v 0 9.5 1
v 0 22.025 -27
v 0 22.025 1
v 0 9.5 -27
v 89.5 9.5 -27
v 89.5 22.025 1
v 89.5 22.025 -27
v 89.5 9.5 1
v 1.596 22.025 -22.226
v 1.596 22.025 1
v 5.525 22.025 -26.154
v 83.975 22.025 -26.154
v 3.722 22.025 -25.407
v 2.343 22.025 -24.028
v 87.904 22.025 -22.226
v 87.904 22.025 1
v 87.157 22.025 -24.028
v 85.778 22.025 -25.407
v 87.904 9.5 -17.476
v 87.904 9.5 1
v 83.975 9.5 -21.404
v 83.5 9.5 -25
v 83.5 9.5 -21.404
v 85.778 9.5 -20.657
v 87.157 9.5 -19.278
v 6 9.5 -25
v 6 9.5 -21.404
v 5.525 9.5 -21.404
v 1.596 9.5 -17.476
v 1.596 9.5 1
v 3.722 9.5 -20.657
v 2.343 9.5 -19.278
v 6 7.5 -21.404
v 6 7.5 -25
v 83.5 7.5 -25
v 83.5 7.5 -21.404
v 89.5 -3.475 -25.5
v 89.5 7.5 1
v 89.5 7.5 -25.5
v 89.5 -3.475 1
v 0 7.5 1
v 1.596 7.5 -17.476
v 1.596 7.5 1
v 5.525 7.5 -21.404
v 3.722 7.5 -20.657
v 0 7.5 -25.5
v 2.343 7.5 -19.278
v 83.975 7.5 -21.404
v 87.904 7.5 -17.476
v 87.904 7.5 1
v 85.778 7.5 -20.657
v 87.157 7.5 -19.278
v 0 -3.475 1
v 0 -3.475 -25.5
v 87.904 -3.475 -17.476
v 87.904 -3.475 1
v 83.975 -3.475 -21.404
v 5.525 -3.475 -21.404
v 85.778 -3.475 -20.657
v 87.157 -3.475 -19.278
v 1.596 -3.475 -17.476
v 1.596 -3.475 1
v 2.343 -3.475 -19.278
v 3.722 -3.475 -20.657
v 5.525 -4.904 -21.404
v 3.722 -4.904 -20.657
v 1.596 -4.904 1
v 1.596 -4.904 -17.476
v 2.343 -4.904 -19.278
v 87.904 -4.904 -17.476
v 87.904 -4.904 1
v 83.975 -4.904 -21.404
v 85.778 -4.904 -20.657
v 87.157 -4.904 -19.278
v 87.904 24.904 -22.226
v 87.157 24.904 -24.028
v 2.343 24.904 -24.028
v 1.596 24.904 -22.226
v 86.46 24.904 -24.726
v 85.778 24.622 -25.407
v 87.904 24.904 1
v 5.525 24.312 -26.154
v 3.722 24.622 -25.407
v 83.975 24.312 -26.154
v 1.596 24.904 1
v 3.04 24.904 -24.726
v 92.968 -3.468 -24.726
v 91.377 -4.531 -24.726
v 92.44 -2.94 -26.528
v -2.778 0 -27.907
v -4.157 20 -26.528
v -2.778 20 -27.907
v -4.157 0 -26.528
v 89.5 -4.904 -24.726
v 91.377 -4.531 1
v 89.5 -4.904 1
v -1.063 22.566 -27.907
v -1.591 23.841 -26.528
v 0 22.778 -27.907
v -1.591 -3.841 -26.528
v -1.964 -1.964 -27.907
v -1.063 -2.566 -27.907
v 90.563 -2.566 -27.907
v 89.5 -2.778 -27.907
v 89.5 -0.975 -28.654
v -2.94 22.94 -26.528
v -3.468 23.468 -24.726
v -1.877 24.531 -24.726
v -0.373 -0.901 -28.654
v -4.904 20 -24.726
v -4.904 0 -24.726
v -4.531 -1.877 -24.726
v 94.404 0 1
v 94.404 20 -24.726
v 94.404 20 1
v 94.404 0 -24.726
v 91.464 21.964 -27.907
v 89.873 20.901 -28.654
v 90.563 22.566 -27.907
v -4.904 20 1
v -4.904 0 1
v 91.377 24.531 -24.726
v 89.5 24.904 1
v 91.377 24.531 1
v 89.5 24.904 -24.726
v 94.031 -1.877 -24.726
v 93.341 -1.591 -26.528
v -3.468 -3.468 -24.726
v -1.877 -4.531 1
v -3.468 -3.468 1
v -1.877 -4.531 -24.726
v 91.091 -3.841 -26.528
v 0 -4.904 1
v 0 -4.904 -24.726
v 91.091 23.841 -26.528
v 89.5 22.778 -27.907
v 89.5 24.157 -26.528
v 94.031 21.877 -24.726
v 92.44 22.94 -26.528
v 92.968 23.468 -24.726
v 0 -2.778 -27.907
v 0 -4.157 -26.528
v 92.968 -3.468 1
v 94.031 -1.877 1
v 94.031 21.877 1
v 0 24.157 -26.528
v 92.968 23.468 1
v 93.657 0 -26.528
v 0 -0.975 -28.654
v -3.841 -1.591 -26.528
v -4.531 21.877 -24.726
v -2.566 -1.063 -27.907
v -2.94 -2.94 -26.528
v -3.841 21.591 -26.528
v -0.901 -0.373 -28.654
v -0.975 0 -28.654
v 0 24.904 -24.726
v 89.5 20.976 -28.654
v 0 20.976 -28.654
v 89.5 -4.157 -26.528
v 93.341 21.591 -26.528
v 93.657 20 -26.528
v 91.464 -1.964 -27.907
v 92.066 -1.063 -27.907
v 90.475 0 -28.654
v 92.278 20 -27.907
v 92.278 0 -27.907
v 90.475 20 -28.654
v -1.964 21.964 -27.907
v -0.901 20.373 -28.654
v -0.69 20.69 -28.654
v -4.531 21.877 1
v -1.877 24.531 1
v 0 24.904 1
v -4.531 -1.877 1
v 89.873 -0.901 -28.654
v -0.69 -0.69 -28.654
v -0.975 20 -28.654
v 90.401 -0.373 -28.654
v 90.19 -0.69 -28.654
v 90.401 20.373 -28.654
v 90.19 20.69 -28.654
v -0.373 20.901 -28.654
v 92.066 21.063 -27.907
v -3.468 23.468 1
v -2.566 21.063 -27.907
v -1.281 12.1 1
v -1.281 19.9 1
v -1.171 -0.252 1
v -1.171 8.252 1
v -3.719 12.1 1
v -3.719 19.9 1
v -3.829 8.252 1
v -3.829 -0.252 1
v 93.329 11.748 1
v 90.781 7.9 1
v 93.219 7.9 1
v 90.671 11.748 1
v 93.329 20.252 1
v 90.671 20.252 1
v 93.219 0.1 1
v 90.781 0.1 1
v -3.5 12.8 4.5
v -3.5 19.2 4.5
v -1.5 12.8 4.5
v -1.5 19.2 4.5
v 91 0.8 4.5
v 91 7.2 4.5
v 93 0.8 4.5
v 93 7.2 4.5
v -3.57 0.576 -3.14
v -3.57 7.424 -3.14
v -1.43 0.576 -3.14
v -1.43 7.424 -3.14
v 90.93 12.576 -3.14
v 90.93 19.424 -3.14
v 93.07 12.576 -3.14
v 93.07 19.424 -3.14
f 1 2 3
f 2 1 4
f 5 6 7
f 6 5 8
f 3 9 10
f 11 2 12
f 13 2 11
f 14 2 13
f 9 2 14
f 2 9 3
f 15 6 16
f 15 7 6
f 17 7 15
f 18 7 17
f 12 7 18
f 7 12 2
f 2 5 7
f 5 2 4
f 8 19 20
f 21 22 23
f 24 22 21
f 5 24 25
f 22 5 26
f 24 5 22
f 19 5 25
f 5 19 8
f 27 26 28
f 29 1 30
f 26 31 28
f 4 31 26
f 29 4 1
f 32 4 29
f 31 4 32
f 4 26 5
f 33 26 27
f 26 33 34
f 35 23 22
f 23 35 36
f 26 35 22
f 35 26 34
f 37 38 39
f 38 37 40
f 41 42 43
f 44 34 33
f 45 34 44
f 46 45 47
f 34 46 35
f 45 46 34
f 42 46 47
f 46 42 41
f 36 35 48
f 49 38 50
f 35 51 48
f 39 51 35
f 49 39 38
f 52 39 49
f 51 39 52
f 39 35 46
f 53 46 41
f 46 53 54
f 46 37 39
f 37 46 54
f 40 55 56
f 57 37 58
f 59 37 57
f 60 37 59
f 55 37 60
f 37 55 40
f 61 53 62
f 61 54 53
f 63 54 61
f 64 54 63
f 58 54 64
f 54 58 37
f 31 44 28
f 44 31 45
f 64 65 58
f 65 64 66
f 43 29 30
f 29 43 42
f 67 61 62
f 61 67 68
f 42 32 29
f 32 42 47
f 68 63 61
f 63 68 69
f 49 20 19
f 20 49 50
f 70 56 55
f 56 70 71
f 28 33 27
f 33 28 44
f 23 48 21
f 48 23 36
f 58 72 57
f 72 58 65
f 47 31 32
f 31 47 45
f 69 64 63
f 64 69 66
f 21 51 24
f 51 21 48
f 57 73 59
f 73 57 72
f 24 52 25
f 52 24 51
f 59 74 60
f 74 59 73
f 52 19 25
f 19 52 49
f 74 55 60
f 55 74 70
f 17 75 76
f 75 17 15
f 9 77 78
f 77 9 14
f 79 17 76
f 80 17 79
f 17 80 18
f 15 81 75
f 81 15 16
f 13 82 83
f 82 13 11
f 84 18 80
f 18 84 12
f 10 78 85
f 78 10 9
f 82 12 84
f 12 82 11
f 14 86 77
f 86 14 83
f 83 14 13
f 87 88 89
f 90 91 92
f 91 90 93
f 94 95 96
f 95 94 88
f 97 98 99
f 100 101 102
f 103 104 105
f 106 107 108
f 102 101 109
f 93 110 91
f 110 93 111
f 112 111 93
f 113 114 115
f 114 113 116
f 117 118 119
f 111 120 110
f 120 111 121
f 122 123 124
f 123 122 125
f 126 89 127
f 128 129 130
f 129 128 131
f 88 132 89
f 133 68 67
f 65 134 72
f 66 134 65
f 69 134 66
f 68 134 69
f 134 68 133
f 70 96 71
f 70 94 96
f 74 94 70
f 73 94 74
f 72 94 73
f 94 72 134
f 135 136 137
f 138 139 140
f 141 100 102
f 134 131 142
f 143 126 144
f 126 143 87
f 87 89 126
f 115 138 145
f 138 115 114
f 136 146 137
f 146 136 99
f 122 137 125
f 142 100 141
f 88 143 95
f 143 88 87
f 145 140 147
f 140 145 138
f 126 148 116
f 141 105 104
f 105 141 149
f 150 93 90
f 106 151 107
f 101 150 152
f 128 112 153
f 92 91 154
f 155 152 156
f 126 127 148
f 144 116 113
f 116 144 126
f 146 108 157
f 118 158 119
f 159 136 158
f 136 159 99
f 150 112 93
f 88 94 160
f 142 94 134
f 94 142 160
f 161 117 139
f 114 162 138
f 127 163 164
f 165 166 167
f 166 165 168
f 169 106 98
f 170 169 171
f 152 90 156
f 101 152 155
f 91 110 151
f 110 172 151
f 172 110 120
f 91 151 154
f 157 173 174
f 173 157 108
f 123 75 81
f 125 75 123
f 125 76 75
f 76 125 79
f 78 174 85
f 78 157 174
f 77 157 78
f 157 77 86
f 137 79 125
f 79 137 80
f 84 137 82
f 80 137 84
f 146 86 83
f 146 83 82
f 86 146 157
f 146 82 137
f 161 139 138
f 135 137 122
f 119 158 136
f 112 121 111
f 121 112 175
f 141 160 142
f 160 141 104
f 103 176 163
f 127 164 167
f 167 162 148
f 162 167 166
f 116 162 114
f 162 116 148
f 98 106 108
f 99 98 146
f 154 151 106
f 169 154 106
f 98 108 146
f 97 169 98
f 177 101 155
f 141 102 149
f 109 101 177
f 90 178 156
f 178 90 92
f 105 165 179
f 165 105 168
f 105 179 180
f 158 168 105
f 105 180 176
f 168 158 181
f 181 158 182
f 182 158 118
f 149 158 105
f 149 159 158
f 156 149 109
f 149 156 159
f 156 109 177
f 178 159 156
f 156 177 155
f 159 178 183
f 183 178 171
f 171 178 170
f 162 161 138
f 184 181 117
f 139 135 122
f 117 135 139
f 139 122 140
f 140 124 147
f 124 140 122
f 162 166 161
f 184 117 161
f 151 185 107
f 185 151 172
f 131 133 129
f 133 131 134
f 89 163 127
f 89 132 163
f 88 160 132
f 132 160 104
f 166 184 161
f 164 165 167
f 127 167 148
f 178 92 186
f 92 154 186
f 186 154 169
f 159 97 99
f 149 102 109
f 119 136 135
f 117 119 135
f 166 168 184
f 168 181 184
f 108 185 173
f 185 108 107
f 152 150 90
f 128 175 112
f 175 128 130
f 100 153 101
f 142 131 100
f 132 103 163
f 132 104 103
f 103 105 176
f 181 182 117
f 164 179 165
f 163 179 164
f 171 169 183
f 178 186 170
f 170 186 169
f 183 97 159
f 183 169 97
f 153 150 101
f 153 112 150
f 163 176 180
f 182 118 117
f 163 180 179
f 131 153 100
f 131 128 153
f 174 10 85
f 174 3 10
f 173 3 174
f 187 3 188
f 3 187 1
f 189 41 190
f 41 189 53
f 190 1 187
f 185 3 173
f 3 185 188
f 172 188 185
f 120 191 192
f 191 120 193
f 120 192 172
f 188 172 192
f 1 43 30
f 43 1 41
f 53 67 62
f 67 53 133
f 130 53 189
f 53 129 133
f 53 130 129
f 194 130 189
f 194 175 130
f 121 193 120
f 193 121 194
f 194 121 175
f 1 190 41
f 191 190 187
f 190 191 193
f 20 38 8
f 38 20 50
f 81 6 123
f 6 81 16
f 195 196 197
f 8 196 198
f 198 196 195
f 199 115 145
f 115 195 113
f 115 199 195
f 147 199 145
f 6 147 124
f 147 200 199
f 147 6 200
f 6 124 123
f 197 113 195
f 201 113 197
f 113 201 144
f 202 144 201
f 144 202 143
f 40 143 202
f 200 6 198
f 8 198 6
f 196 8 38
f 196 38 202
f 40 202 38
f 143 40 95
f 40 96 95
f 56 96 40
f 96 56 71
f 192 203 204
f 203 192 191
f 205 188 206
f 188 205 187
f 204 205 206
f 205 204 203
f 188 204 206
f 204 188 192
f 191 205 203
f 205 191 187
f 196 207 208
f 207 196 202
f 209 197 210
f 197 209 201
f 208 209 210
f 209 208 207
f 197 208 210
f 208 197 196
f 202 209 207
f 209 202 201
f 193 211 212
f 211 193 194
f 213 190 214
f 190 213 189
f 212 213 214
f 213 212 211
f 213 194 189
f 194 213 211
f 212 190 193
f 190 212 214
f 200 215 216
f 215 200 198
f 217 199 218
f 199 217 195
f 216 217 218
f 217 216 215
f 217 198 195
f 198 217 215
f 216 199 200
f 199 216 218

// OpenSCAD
// file: microclock-ref.scad
$fn = 10;

skinBreak = 0.01;       // extra depth to poke a hole through a surface

//boardW = 146;
//boardH = 63.7;     // was 63.45 - tight

// Eagle dimensions of v.2 board
//  + slop to fit
eagleBoardW = (33 * 2.54);      // 83.82;
eagleBoardH = (15.55 * 2.54); // 39.37;
eagleBoardD = 2.8; // 1.8;
eagleBoardX = .5;       // offset into board hole (1/2 of fudge value)
eagleBoardY = .5;
eagleBoardZ = 0;
boardW = eagleBoardW + (eagleBoardX*2);
boardH = eagleBoardH + (eagleBoardY*2);
boardD = eagleBoardD + skinBreak;

boardX = 0;
boardY = 4;

boardFrameW = 3;
boardFrameX = 0;
boardFrameY = 0;

reflectorWidth = boardW;
reflectorHeight = boardH + boardFrameW;
reflectorDepth = 7;
refOffZ = reflectorDepth / 2;

strokeWidth = 0.3;



segMul = 1.27;


headerHeight = 2.7;
headerYOffset = 35;
headerAOffset = 6;
headerAWidth = 20;
headerBOffset = 56;
headerBWidth = 20;
headerY2Offset =  3;
headerCOffset = 56;
headerCWidth = 20;
headerY3Offset = 12;
headerDOffset = 2;
headerDHeight = 16;
headerDepth = 10;
headerBackDepth = 4;

module pinClearance() {
    // pixel I/O header
        translate([headerAOffset, headerYOffset, -headerBackDepth])
            cube([headerAWidth, headerHeight, headerDepth]);
    // I2C header
        translate([headerBOffset, headerYOffset, -headerBackDepth])
            cube([headerBWidth, headerHeight, headerDepth]);
    // prog header
        translate([headerCOffset, headerY2Offset, -headerBackDepth])
            cube([headerCWidth, headerHeight, headerDepth]);
    // pwr/spk header
        translate([headerDOffset, headerY3Offset, -headerBackDepth])
            #cube([headerHeight, headerDHeight, headerDepth]);



powerW = 12;
powerH = 13;
powerD = 7;
powerX = 107;
powerY = 0;
powerZ = -2;
    // power jack pins
    translate([powerX, boardH-powerH+powerY, powerZ])
        cube([powerW, powerH, powerD]);

npW = 11;
npH = 4;
npD = 5;
npX = 125;
npY = -1;
npZ = -1;
    // neopixel out pins
    translate([npX, boardH-npH+npY, npZ])
        cube([npW, npH, npD]);


}



segMul = .254 * 2.54;

adgOffX = 8;
adgOffY = 3;
aOffX = 4;
aOffY = 34.5;
dOffY = -.5;
gOffY = 17;
adgSeg = [ [-9.5,-1.5], [-9.5,1.5], [-6.5,4.5], [6,4.5], [9.5,1], [9.5,-1], [6.5,-4.5], [-6.5,-4.5] ];

bcOffX = 20.5;
bcOffY = 8.5;
bOffY = 20;
cOffY = 2.5;
bcSeg = [ [-4,-5], [-4,5.5], [0,10], [0,11], [2,11], [4,8.5], [4,-9], [2.5,-10.5], [0,-10.5], [0,-9] ];

efOffX = 3;
efOffY = 8.5;
eOffY = 2.5;
fOffY = 20;
efSeg = [ [.5,-10.5], [-2,-10.5], [-4,-8.5], [-4,8.5], [-2,10.5],  [.5,10.5],  [.5,9.5],  [4,6],  [4,-5.5],  [.5,-9] ];

colonCenterX = 3;
colonCenterY = 3;
colonOffY = 10.75;
colonOffY2 = 22.75;
colonSeg = [ [-3.5,-2.5], [-3.5,2.5],  [-2.5,3.5],  [2.5,3.5],  [3.5,2.5],  [3.5,-2.5],  [2.5,-3.5],  [-2.5,-3.5] ];

module segment(path) {
    scale([.84, .84, 1])
 #   linear_extrude(height = reflectorDepth+1, center=true, scale=.9)
        polygon(path);
}


segOffZ = -2.5;
module sevenSeg() {
    
    translate([adgOffX + aOffX, adgOffY + aOffY, segOffZ])
        segment(adgSeg);
    translate([adgOffX + aOffX, adgOffY + dOffY, segOffZ])
        segment(adgSeg);
    translate([adgOffX + aOffX, adgOffY + gOffY, segOffZ])
        segment(adgSeg);

    translate([bcOffX, bcOffY + bOffY, segOffZ])
        segment(bcSeg);
    translate([bcOffX, bcOffY + cOffY, segOffZ])
        segment(bcSeg);
    translate([efOffX, efOffY + eOffY, segOffZ])
        segment(efSeg);
    translate([efOffX, efOffY + fOffY, segOffZ])
        segment(efSeg);
}

module colons() {
    translate([colonCenterX, colonCenterY + colonOffY, segOffZ])
        segment(colonSeg);
    translate([colonCenterX, colonCenterY + colonOffY2, segOffZ])
        segment(colonSeg);
}

pixelArray = [ [3,5], [3,6.5], [3,9.5], [3,11],
    [4.5,3.5], [4.5,8], [4.5,12.5], 
    [6,3.5], [6,8], [6,12.5],
    [7.5,5], [7.5,6.5], [7.5,9.5], [7.5,11],
    [10,5], [10,6.5], [10,9.5], [10,11],
    [11.5,3.5], [11.5,8], [11.5,12.5], 
    [13,3.5], [13,8], [13,12.5],
    [14.5,5], [14.5,6.5], [14.5,9.5], [14.5,11],
    [16.5,6.5], [16.5,9.5],
    [18.5,5], [18.5,6.5], [18.5,9.5], [18.5,11],
    [20,3.5], [20,8], [20,12.5],
    [21.5,3.5], [21.5,8], [21.5,12.5],
    [23,5], [23,6.5], [23,9.5], [23,11],
    [25.5,5], [25.5,6.5], [25.5,9.5], [25.5,11],
    [27,3.5], [27,8], [27,12.5],
    [28.5,3.5], [28.5,8], [28.5,12.5],
    [30,5], [30,6.5], [30,9.5], [30,11],
 ];

pixelW = 2.5;
pixelH = 2.5;

module pixels() {
        for (i=pixelArray) {
 //           echo(2.54*i[0], 2.54*i[1]);
            translate([2.54*i[0]-pixelW/2, 2.54*i[1]-pixelH/2, -1])
                #cube([pixelW,pixelH,1]);
        }
}

module miniMountingHoles() {
holeX1 = 1 * 2.54;
holeX2 = 32 * 2.54;
holeY1 = 1 * 2.54;
holeY2 = 14.75 * 2.54;
holeZ = 0;
holeR = 2.9/2;
holeD = 10;
    // mounting holes
    translate([holeX1, holeY1, holeZ])
        cylinder(r=holeR, h=holeD, center=true);
    translate([holeX1, holeY2, holeZ])
        cylinder(r=holeR, h=holeD, center=true);
    translate([holeX2, holeY1, holeZ])
        cylinder(r=holeR, h=holeD, center=true);
    translate([holeX2, holeY2, holeZ])
        cylinder(r=holeR, h=holeD, center=true);

}


module miniboard() {
    cube([eagleBoardW, eagleBoardH, eagleBoardD]);
//    pixels();
    miniMountingHoles();
}

module xxx() {
    refX = 5;
    refY = 5;
        translate([refX, refY + 3, 0]) {
            scale([segMul, segMul, 1])
                union() {
        
                translate([1, 0, -refOffZ]) {
                    translate([1, 0, 0])
                        sevenSeg();
                    translate([28.5, 0, 0])
                        sevenSeg();
                    
                    translate([54, 0, 0])
                        colons();
                    
                    translate([62, 0, 0])
                        sevenSeg();
                    translate([89.5, 0, 0])
                        sevenSeg();
                }
            }
        }

}

test = 1;
if (test) {
   difference() {
       union() {
            translate([0, 0, -boardD])
                cube([boardW, boardH, boardD]);
            // base to carve everything out of
            translate([boardFrameX-boardFrameW, boardFrameY-boardFrameW, -reflectorDepth])
                cube([boardW+boardFrameW*2, reflectorHeight+boardFrameW, reflectorDepth]);
      }
      translate([eagleBoardX, eagleBoardY, -boardD+skinBreak*2])
        miniboard();
      pinClearance();
       xxx();
   }
 //        translate([eagleBoardX, eagleBoardY, -boardD+skinBreak*2])
 //     pixels();
}
else {
if (!LIBRARY)
    miniclock_reflector();
}
// main file
LIBRARY = 1;

use <microclock-ref.scad>;

split_it = 0;                   // half sized deep

acrylicDepth = 3.175 + .3;

skinBreak = 0.01;       // extra depth to poke a hole through a surface

boardFrameW = 3;
boardFrameX = 0;
boardFrameY = -2;

// from miniclock-ref - begin
boardW = 89;
boardH = 45.5;     // was 63.45 - tight
boardD = 1.8 + skinBreak;

reflectorWidth = boardW; // boardW;
reflectorHeight = boardH + boardFrameW; // boardH + boardFrameW*2;
reflectorDepth = 7;
// from miniclock-ref - end

echo("Reflector[", reflectorWidth, reflectorHeight, reflectorDepth, "]");

fudge = 0.5;
reflectorW = reflectorWidth + fudge;
reflectorH = reflectorHeight + fudge;
reflectorD = reflectorDepth + fudge;

caseMinkowskiR = 5;
caseW = reflectorW;
caseH = 20;                 // really depth
caseD = reflectorH+caseMinkowskiR-2;
caseX = 0;
caseY = 0;
caseZ = -boardH/2 - caseMinkowskiR;

caseBackLip = 3;

//glassW = 148.26 + fudge;
//glassH = 65.8 + fudge;
glassW = reflectorW;
glassH = reflectorH;
glassD = acrylicDepth;
glassX = (reflectorW - glassW) / 2;
glassY = 0;
glassZ = -glassH/2-1;

glassLipDepth = 2;
glassLipSide = caseMinkowskiR + 1.5;
glassLipBottom = caseMinkowskiR + 3;

topBottomSplit = 0;

reflectorX = 0;
reflectorY = 0;
reflectorZ = reflectorH/2-1;

voidW = reflectorW;
voidH = reflectorH;
voidD = caseH - glassD - glassLipDepth +1 -caseBackLip;
voidAX = 0;
voidAY = reflectorD + 2;
voidAZ = -reflectorH/2-2.5;

module reflector() {
   translate([reflectorX, reflectorY, reflectorZ])
        rotate([-90, 0, 0])
            cube([reflectorW, reflectorH, reflectorD]);
}

module glass() {
    translate([glassX, glassY-glassD, glassZ])
        cube([glassW, glassD+skinBreak, glassH]);
}

module internalVoid() {
    // main volume
    translate([voidAX, voidAY, voidAZ])
        cube([voidW, voidD, voidH]);
    //additional around board retaining lip
    translate([voidAX+6, voidAY-4, voidAZ+2])
        cube([voidW-12, voidD, voidH-4]);
    //additional around board retaining lip
*    translate([voidAX+3, voidAY-4, voidAZ+1])
        #cube([voidW-6, voidD, voidH-4]);
}

//    translate([7, -10, -topBottomSplit-(boardH/2)+9])

viewPortX = (reflectorW - glassW)/2;
viewPortY = -5;
viewPortZ = -glassH/2;
smallenW = glassLipSide * 2;
smallenH = glassLipBottom * 2;
smallenBW = glassLipSide*2;
smallenBH = glassLipSide;

module frontView() {
    translate([viewPortX+smallenW/2, viewPortY, viewPortZ+smallenH/2])
        minkowski() {
            cube([glassW-smallenW, glassH/4+10, glassH-smallenH]);
            sphere(r=caseMinkowskiR);
        }
}
module backView() {
    translate([viewPortX+smallenBW/2, viewPortY+caseH, viewPortZ+smallenBH/2])
        minkowski() {
            cube([glassW-smallenBW, glassH/4, glassH-smallenBH]);
            sphere(r=caseMinkowskiR);
        }
}

module caseCore() {
    translate([caseX, caseY, caseZ])
    minkowski() {
        cube([caseW, caseH, caseD]);
            sphere(r=caseMinkowskiR);
    }
}


connW = 2.5;
connW2 = connW/2;
connH = 8;
connH2 = connH/2;

connPoly = [ [-connW2,-connH2], [connW2,-connH2], [connW2,connH2], [-connW2,connH2] ];

tabW = 2.5;
tabD = 4;

tabZout = 1.5;
tabZin = -2;

tabAX = -connW;
tabAY = 4;
tabBX = reflectorW+connW;
tabBY = 16;
tabCX = reflectorW+connW;
tabCY = 35;
tabBZ = tabZout;

module connectorPositive() {
#    translate([tabAX, tabBY, tabBZ])
        rotate([0, 0, 0])
        linear_extrude(height = tabD, center=true, scale=.8)
            polygon(connPoly);
#    translate([tabBX, tabAY, tabBZ])
        rotate([0, 0, 0])
        linear_extrude(height = tabD, center=true, scale=.8)
            polygon(connPoly);
*#    translate([tabCX, tabCY, tabBZ])
        rotate([0, 0, 0])
        linear_extrude(height = tabD, center=true, scale=.8)
            polygon(connPoly);

}

connNegScale = 1.07;

module connectorNegative() {
    #translate([tabAX, tabAY, tabZin])
        rotate([180, 0, 0])
            scale([connNegScale, connNegScale, connNegScale])
            linear_extrude(height = tabD, center=true, scale=.8)
                polygon(connPoly);
    #translate([tabBX, tabBY, tabZin])
        rotate([180, 0, 0])
            scale([connNegScale, connNegScale, connNegScale])
            linear_extrude(height = tabD, center=true, scale=.8)
                polygon(connPoly);
 *   #translate([tabAX, tabCY, tabZin])
        rotate([180, 0, 0])
            scale([connNegScale, connNegScale, connNegScale])
            linear_extrude(height = tabD, center=true, scale=.8)
                polygon(connPoly);
}


module oneSide() {
    // remove negative tab bits
    difference() {
        // from a halved
        union() {
            // with added positive tab bits
            difference() {
                // voided internal bits
                difference() {
                    // full core
                    union() {
//                    color("blue", 0.2);
                        difference() {
                            translate([0, 0, 4])
                            caseCore();
                        }
                    }
                    // (internal bits to void)
                    union() {
                        reflector();
                        glass();
                        internalVoid();
                        frontView();
                        backView();
                    }
                }
    
            
                // cut in half
                translate([-150, -50, 1])
                    cube([500, 500, 500]);
            }
            
            // tabs positive
            translate([0, 0, 1])
                connectorPositive();
        }
        // tabs negative
        translate([0, 0, 1])
            connectorNegative();
    }
}

// 

splitX = 20;
splitY = -120;
splitZ = -123;

if (split_it) {
    difference() {
        translate([0, 0, -1])
            oneSide();
        translate([splitX, splitY, splitZ])
            cube([500, 500, 500]);
    }
}
else {
    oneSide();
}
